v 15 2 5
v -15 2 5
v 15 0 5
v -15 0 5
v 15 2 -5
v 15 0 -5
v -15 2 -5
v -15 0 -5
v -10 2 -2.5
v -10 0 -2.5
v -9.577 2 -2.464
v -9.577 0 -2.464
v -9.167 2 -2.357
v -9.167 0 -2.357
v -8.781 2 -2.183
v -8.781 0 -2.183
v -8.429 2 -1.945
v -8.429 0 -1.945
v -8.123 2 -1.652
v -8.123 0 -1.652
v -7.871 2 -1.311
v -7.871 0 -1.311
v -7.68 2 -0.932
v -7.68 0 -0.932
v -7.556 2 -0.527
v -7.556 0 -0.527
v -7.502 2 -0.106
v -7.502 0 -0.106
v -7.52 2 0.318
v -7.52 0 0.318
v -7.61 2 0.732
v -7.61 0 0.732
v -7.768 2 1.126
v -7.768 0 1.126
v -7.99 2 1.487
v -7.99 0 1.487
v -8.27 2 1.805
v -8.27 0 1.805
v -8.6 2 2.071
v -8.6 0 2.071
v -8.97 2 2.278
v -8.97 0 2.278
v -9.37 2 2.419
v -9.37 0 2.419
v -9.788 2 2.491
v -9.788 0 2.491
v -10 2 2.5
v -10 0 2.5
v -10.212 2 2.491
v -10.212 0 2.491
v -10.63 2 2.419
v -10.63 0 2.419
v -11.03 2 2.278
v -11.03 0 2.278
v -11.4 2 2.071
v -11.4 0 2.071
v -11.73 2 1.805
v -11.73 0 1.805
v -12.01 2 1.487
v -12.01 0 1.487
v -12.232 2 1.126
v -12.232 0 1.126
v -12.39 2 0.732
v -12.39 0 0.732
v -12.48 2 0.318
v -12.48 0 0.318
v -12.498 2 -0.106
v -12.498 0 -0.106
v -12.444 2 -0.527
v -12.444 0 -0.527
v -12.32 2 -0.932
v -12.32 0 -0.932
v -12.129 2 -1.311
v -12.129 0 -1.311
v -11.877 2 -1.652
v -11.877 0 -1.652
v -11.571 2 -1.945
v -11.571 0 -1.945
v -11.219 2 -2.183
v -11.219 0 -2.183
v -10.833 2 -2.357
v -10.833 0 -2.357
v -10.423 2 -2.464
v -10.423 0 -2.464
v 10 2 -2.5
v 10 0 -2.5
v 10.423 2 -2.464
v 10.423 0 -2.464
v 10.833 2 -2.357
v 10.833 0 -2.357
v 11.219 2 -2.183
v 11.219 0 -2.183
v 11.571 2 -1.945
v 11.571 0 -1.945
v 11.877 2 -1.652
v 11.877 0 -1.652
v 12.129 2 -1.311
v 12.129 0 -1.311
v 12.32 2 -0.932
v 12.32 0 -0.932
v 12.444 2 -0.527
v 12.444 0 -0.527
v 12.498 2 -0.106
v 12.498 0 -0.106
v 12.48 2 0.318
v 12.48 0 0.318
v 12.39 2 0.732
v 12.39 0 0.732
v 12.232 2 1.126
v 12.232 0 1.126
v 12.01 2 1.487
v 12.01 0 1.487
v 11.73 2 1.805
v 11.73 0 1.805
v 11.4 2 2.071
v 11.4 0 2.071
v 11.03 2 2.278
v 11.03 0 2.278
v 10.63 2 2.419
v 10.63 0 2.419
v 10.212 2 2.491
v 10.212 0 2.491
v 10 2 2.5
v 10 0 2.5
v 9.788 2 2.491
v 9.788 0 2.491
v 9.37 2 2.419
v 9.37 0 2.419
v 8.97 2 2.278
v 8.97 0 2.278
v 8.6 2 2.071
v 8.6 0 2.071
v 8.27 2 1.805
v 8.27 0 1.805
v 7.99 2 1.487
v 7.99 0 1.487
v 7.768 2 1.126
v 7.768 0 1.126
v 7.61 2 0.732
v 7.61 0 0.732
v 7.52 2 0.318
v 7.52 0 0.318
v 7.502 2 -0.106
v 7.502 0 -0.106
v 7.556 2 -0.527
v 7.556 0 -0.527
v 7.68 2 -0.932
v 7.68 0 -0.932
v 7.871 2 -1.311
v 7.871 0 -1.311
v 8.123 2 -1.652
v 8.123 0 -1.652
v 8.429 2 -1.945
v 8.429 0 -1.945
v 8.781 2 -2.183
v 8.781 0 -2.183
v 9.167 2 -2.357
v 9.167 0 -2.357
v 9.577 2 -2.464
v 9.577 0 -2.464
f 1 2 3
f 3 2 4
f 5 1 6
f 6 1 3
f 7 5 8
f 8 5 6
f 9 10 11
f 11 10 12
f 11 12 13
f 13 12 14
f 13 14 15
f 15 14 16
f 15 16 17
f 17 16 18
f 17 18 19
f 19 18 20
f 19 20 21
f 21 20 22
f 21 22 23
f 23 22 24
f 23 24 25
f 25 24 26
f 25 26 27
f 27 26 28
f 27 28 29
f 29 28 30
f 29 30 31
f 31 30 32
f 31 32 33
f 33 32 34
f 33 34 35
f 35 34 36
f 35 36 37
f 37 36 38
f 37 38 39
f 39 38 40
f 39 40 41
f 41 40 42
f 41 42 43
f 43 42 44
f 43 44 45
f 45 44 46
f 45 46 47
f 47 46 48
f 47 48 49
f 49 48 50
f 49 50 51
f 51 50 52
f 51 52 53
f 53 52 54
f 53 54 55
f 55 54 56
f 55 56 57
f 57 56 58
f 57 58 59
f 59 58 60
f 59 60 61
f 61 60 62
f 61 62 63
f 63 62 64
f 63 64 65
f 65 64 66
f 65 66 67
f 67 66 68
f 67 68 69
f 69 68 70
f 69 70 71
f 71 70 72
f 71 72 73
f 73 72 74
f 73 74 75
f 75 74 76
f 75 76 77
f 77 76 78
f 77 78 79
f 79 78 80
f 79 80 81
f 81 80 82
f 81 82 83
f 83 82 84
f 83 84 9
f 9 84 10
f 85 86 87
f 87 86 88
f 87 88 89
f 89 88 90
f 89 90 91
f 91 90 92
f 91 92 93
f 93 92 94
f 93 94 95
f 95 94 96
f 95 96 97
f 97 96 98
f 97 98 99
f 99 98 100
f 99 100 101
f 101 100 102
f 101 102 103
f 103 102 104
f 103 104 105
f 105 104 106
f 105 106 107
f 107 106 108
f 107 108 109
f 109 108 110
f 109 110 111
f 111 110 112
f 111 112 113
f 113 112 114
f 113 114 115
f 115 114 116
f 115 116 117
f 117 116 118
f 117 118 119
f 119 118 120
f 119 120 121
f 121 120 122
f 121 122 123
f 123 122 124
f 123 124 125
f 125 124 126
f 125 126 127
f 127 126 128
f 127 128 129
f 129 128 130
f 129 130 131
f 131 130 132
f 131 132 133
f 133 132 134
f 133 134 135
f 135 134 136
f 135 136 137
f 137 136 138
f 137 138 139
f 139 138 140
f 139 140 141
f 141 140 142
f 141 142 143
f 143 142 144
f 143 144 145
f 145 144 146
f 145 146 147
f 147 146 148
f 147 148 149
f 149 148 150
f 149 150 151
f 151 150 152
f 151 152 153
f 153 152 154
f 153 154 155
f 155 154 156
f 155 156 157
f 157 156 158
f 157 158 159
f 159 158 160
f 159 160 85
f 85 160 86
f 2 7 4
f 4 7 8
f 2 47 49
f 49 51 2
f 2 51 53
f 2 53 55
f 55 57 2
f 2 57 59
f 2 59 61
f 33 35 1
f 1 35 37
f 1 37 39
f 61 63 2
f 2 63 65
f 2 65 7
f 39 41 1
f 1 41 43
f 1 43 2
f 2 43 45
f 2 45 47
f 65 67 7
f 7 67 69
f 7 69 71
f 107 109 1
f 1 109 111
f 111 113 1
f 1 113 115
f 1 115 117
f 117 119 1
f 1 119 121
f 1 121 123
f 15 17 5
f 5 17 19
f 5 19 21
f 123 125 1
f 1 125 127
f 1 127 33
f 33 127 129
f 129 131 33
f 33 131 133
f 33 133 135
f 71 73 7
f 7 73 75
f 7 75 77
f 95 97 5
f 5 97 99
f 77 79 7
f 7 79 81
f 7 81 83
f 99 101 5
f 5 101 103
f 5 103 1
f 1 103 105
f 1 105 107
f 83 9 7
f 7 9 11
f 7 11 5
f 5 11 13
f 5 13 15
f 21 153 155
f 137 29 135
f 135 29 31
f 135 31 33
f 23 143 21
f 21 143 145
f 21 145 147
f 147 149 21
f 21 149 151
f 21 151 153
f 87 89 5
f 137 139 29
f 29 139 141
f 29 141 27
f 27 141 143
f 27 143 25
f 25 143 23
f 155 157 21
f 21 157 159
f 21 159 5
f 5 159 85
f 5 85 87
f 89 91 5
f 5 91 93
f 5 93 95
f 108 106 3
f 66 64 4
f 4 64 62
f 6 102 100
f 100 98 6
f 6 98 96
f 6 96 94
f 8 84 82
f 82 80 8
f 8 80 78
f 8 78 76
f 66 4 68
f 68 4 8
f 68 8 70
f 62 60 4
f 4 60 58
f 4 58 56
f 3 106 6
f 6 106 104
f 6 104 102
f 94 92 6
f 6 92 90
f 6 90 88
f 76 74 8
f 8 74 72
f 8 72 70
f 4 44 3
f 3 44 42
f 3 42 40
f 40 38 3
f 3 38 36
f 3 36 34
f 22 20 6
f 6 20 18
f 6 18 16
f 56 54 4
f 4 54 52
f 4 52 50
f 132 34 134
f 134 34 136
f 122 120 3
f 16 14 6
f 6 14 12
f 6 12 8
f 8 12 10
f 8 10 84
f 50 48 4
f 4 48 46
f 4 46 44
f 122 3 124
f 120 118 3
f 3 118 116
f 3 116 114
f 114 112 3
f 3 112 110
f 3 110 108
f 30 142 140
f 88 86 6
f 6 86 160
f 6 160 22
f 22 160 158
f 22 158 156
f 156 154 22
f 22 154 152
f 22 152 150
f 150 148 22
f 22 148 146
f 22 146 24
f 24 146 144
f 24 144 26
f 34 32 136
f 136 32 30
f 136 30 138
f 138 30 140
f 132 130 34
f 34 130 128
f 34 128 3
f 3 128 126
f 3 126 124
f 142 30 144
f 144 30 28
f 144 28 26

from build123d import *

# Parameters (mm, degrees)
SKETCH_1_W      = 30
SKETCH_1_H      = 10
EXTRUDE_1_DEPTH = 2


with BuildPart() as part:
    # 草图1 → 凸台-拉伸1 (new body)
    # profile 1 of 2: a face of its own
    with BuildSketch(Plane(origin=(0, 0, 0), x_dir=(1, 0, 0), z_dir=(0, 1, 0))):
        Rectangle(SKETCH_1_W, SKETCH_1_H)
        with BuildLine():
            Line((10, -2.5), (-10, -2.5))
            ThreePointArc((-10, -2.5), (-12.5, 0), (-10, 2.5))
            Line((-10, 2.5), (10, 2.5))
            ThreePointArc((10, 2.5), (11.767766953, 1.767766953), (12.5, 0))
            ThreePointArc((12.5, 0), (11.767766953, -1.767766953), (10, -2.5))
        make_face(mode=Mode.SUBTRACT)
    # profile 2 of 2: a face of its own
    with BuildSketch(Plane(origin=(0, 0, 0), x_dir=(1, 0, 0), z_dir=(0, 1, 0))):
        with BuildLine():
            ThreePointArc((-7.5, 0), (-8.232233047, -1.767766953), (-10, -2.5))
            Line((-10, -2.5), (10, -2.5))
            ThreePointArc((10, -2.5), (7.5, 0), (10, 2.5))
            Line((10, 2.5), (-10, 2.5))
            ThreePointArc((-10, 2.5), (-8.232233047, 1.767766953), (-7.5, 0))
        make_face()
    extrude(amount=EXTRUDE_1_DEPTH)


solid = part.part
